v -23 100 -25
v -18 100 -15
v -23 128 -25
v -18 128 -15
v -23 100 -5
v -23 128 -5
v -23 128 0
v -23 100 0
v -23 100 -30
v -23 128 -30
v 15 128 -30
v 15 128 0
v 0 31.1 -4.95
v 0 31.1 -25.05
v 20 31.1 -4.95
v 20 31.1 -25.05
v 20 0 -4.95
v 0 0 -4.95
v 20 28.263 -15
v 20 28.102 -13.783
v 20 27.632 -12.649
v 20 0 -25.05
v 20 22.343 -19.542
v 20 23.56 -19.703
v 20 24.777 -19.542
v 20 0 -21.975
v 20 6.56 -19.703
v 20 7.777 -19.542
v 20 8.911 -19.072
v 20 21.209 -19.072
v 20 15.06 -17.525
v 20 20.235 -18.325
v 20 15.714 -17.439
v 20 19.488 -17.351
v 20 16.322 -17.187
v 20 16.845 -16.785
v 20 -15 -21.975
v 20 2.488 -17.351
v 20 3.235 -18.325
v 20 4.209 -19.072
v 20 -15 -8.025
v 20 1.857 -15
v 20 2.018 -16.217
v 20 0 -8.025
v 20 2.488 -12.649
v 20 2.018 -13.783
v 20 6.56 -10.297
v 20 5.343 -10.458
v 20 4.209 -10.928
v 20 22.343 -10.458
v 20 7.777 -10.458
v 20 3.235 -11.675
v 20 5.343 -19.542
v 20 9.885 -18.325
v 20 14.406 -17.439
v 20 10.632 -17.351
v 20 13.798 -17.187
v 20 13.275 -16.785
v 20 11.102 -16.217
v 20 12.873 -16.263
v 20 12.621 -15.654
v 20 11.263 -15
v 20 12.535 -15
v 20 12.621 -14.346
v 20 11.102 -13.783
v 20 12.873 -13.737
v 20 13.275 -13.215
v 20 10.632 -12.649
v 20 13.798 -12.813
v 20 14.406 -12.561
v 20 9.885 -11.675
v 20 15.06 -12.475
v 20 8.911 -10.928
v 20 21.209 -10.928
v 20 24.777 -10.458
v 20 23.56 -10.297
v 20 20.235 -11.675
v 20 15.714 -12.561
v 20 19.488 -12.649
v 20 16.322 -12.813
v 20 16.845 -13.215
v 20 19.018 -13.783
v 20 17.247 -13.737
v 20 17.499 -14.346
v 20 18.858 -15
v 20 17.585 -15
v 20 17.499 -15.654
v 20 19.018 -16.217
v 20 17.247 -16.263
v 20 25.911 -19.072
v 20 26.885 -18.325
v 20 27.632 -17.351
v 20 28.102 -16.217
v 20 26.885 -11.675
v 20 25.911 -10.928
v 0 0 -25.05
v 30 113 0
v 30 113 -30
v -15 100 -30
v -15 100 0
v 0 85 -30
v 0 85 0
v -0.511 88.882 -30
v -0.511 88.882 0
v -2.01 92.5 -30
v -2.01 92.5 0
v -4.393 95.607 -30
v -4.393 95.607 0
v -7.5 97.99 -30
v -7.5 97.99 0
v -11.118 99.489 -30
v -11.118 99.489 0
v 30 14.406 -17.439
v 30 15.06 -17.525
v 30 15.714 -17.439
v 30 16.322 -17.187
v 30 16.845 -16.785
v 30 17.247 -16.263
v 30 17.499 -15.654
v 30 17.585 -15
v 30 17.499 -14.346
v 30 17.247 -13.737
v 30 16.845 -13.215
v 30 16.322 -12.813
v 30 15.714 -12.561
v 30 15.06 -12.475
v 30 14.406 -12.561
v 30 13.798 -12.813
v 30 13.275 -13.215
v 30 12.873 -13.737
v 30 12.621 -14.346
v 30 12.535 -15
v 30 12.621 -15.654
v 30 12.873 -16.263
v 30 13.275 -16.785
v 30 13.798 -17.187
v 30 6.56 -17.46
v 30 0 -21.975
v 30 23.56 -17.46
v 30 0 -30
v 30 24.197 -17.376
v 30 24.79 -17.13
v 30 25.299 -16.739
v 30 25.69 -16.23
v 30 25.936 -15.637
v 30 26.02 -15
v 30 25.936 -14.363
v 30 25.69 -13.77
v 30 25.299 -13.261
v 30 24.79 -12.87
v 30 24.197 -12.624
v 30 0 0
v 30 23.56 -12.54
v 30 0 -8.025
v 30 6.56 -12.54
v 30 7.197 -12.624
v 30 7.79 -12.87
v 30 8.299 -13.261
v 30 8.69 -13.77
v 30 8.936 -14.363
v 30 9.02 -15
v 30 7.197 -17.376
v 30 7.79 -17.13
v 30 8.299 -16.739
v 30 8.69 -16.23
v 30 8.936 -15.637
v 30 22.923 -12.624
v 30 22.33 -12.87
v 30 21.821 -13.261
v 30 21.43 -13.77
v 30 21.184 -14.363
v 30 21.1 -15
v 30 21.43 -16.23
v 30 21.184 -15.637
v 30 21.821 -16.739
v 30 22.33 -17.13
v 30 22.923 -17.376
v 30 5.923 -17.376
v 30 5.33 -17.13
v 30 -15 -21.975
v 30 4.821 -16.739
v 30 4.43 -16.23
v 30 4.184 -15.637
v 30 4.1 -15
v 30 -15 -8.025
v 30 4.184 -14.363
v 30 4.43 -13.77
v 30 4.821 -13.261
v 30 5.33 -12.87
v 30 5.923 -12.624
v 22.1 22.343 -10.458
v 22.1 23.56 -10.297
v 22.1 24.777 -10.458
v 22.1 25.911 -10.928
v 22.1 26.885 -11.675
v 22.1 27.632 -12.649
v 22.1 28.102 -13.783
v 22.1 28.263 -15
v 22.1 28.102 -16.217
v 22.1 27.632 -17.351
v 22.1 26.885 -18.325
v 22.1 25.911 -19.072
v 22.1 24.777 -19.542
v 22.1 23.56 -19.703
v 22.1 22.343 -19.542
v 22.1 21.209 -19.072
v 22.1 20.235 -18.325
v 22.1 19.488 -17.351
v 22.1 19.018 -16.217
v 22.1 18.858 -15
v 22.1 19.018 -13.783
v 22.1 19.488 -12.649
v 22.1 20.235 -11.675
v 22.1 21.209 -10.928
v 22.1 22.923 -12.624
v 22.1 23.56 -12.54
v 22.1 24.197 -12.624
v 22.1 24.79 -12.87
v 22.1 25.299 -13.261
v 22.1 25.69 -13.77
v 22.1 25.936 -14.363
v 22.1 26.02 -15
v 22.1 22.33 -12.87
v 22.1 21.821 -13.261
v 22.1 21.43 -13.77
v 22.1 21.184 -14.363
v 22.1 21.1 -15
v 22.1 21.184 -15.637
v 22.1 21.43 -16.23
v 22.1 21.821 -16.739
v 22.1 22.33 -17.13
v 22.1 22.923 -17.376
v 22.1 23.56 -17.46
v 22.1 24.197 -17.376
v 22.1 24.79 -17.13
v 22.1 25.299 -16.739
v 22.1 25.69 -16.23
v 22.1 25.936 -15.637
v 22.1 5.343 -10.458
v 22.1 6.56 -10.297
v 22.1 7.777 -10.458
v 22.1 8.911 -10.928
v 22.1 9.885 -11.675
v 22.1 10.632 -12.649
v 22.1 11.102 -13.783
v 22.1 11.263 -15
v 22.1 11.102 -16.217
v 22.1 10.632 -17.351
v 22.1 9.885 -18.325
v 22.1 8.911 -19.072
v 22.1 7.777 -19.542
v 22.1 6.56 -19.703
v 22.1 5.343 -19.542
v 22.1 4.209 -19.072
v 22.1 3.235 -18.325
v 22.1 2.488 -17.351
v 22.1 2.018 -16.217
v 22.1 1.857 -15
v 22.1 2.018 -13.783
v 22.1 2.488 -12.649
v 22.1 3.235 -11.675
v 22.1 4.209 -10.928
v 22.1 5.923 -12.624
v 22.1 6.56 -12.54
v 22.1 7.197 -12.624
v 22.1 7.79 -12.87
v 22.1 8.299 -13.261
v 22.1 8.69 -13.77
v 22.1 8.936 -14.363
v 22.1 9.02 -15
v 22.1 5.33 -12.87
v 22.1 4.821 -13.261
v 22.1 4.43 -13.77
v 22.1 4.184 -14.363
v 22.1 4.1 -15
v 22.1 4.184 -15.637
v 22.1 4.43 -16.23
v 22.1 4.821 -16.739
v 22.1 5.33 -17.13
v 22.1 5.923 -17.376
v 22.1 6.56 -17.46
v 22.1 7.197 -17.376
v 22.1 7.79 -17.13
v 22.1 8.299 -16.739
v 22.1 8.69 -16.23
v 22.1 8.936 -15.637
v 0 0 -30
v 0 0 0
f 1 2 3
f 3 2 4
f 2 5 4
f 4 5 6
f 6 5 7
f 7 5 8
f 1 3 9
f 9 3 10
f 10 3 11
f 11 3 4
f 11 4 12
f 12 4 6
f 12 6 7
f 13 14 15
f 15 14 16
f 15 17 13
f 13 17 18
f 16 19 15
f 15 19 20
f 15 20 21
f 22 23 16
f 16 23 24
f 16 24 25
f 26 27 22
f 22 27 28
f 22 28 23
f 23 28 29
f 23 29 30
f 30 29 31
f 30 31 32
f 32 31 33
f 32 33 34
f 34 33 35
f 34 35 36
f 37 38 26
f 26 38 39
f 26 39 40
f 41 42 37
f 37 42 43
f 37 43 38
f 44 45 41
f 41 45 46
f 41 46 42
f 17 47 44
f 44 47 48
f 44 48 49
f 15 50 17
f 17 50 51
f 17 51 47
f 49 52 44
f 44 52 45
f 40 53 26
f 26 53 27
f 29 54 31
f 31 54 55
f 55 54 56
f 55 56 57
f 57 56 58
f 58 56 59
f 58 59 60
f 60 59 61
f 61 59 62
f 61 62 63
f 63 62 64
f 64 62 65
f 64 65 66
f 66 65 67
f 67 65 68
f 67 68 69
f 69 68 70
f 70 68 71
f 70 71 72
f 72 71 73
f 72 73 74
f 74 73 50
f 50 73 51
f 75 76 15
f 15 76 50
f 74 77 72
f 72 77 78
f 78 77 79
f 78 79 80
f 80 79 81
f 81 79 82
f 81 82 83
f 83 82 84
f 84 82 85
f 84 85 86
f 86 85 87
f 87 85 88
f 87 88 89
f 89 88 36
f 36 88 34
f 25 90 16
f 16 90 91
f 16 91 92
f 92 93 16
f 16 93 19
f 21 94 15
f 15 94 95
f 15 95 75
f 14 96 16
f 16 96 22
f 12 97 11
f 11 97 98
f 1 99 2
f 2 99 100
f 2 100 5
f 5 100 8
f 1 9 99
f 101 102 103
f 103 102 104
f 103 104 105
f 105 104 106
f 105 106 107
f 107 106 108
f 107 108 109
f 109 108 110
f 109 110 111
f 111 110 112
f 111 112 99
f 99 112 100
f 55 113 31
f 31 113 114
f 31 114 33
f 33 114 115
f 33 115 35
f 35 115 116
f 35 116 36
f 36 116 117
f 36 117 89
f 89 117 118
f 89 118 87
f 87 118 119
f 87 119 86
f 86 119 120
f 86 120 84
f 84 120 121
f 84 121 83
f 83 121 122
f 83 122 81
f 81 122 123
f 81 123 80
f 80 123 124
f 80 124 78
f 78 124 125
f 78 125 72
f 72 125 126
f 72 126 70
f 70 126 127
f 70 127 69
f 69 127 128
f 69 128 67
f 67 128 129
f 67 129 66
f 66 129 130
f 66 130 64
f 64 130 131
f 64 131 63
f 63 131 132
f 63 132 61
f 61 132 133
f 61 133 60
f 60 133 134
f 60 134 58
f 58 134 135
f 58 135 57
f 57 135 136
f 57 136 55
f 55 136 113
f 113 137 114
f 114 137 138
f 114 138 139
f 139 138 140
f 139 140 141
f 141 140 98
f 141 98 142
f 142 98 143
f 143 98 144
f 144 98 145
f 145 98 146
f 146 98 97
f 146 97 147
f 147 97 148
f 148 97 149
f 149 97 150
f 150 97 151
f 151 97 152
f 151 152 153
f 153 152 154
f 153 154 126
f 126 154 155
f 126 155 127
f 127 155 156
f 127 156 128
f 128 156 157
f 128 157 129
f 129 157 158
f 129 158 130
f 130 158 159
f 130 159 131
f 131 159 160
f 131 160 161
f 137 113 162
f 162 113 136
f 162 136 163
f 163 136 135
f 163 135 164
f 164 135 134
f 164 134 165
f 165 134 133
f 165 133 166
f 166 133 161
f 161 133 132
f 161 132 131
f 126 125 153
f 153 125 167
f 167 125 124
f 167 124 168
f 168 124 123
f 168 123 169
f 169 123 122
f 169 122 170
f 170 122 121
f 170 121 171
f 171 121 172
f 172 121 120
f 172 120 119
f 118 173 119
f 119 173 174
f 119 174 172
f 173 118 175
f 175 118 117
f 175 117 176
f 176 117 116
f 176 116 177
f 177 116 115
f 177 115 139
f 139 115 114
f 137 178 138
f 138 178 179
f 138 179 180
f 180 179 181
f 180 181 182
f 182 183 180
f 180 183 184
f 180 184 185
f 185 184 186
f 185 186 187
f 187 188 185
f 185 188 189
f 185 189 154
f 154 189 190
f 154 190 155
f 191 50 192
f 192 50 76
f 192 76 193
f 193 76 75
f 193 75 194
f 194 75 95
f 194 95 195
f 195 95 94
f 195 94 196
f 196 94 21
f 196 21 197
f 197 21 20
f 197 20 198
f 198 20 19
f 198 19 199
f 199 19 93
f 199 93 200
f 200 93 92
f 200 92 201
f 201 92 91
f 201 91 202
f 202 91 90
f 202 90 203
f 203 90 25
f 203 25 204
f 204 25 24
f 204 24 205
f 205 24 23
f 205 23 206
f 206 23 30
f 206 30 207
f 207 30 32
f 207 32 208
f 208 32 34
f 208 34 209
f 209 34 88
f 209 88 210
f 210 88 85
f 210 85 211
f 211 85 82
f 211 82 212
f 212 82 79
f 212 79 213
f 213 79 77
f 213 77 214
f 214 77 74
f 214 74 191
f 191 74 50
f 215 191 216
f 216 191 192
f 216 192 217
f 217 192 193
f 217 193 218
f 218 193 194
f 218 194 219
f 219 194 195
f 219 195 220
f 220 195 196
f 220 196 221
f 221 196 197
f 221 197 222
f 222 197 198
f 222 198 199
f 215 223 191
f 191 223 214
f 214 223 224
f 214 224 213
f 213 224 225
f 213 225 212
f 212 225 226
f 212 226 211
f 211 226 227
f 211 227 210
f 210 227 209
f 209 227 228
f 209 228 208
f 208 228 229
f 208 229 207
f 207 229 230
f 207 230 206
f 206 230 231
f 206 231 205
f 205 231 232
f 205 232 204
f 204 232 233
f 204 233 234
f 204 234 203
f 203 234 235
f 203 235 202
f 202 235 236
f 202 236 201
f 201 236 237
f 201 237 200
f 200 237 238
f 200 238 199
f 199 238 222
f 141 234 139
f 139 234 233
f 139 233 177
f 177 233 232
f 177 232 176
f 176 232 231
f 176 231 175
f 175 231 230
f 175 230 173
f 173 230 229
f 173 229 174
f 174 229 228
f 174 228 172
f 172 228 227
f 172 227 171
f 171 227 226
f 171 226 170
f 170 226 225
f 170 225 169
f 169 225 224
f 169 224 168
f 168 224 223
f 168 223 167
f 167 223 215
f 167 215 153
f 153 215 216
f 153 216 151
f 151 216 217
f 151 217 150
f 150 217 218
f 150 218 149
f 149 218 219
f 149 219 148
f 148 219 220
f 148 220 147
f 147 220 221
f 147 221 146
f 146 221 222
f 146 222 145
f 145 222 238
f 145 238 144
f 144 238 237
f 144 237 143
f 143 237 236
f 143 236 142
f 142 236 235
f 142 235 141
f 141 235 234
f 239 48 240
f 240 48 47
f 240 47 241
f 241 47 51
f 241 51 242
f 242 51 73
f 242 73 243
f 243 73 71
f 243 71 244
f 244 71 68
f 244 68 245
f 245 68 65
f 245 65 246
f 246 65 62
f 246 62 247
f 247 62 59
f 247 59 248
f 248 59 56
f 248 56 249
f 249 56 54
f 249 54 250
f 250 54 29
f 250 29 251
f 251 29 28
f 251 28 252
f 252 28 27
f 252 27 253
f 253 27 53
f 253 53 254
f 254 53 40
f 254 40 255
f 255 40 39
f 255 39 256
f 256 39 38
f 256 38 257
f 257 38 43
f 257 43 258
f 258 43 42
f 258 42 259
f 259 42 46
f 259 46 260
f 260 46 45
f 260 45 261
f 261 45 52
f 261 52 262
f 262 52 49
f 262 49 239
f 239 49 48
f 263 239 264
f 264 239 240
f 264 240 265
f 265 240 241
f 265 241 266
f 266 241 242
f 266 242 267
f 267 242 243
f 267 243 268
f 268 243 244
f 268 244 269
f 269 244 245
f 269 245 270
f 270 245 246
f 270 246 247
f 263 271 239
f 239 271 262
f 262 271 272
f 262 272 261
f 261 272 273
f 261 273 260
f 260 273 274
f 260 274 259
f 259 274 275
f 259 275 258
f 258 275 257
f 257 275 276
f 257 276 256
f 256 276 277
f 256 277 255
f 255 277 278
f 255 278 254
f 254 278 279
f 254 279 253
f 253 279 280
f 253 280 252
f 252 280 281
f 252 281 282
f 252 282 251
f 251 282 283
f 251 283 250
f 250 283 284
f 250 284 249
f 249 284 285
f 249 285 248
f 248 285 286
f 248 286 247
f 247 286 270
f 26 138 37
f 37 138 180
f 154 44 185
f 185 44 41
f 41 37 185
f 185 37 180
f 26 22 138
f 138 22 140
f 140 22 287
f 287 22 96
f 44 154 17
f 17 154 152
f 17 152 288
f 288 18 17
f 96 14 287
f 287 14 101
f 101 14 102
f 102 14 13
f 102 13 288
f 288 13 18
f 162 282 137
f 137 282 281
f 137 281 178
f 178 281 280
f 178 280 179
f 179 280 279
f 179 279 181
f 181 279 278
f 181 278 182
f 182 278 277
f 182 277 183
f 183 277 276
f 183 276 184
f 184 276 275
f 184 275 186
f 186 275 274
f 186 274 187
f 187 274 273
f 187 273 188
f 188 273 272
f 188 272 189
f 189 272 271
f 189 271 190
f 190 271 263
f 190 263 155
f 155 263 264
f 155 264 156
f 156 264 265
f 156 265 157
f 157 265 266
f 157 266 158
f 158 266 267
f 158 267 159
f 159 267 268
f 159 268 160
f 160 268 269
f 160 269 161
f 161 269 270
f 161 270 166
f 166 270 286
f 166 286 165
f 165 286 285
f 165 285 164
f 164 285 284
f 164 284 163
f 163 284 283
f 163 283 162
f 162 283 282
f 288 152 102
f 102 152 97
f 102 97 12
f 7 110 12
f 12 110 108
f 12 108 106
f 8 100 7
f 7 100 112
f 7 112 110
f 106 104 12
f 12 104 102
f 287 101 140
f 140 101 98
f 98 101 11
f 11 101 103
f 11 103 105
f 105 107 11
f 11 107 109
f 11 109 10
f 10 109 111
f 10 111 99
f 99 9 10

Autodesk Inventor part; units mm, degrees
ref_plane "YZ Plane" through (0, 0, 0) normal (1, 0, 0) x (0, 1, 0)
ref_plane "XZ Plane" through (0, 0, 0) normal (0, 1, 0) x (-1, 0, 0)
ref_plane "XY Plane" through (0, 0, 0) normal (0, 0, 1) x (1, 0, 0)
sketch "Sketch1" plane through (0, 0, 0) normal (0, 0, 1) x (1, 0, 0)
  line L0 (0, 0) -> (25, 0)
  line L1 (25, 0) -> (25, 40)
  line L2 (25, 40) -> (0, 40)
  line L3 (0, 40) -> (0, 0)
  dimension "d1" = 25
  dimension "d2" = 40
  dimension "d3" = 25
extrude "Extrusion1" add sketch "Sketch1" against normal blind 30
sketch "Sketch2" plane through (25, 0, 0) normal (1, 0, 0) x (0, 0, -1)
  line L0 (0, 0) -> (30, 0) projected
  circle A0 centre (15, 6.56) radius 2.46
extrude "Extrusion2" cut sketch "Sketch2" against normal blind 30
sketch "Sketch3" plane through (0, 0, 0) normal (-1, 0, 0) x (0, 0, 1)
  line L0 (0, 0) -> (-30, 0) projected
  line L1 (-25.05, 0) -> (-4.95, 0)
  line L2 (-4.95, 0) -> (-4.95, 33.12)
  line L3 (-4.95, 33.12) -> (-25.05, 33.12)
  line L4 (-25.05, 33.12) -> (-25.05, 0)
  dimension "d11" = 20.1
extrude "Extrusion3" cut sketch "Sketch3" against normal blind 20
sketch "Sketch4" plane through (0, 0, 0) normal (0, -1, 0) x (1, 0, 0)
  line L0 (20, -4.95) -> (20, -25.05) projected
  line L1 (20, -15) -> (25, -15)
  line L2 (25, 0) -> (25, -30) projected
  line L3 (20, -8.025) -> (25, -8.025)
  line L4 (25, -8.025) -> (25, -21.975)
  line L5 (25, -21.975) -> (20, -21.975)
  line L6 (20, -21.975) -> (20, -8.025)
  line L7 (20, -8.025) -> (25, -21.975) construction
  line L8 (25, -8.025) -> (20, -21.975) construction
  line L9 (25, -12.54) -> (25, -17.46) projected
  point P0 (0, 0)
  point P1 (22.5, -15)
  dimension "d14" = 13.95
extrude "Extrusion4" add sketch "Sketch4" along normal blind 15
sketch "Sketch5" plane through (20, 0, 0) normal (-1, 0, 0) x (0, 0, 1)
  circle A0 centre (-15, 6.56) radius 2.46 projected
  circle A1 centre (-15, 6.56) radius 4.7025
  circle A2 centre (-15, 6.56) radius 2.46 projected
  circle A3 centre (-15, 6.56) radius 2.46
  point P0 (0, 0)
  dimension "d17" = 9.405
extrude "Extrusion5" cut sketch "Sketch5" against normal blind 2.1
sketch "Sketch6" plane through (25, 0, 0) normal (1, 0, 0) x (0, 0, -1)
  circle A0 centre (15, 6.56) radius 4.7025 projected
  line L0 (15, 6.56) -> (15, 23.56)
  circle A1 centre (15, 23.56) radius 2.46
  point P0 (0, 0)
  dimension "d20" = 17
  dimension "d21" = 4.92
extrude "Extrusion6" cut sketch "Sketch6" against normal blind 10 contours A1
sketch "Sketch7" plane through (20, 0, 0) normal (-1, 0, 0) x (0, 0, 1)
  circle A0 centre (-15, 23.56) radius 2.46 projected
  circle A1 centre (-15, 23.56) radius 4.7025
  point P0 (0, 0)
  dimension "d24" = 9.405
extrude "Extrusion7" cut sketch "Sketch7" against normal blind 2.1
sketch "Sketch9" plane through (25, 0, 0) normal (1, 0, 0) x (0, 0, -1)
  circle A0 centre (15, 6.56) radius 2.46 projected
  circle A1 centre (15, 6.56) radius 2.46
  circle A2 centre (15, 23.56) radius 2.46 projected
  circle A3 centre (15, 23.56) radius 2.46
  line L0 (30, 40) -> (30, 0) projected
  line L1 (30, 0) -> (30, 40)
  line L2 (30, 40) -> (0, 40)
  line L3 (0, 40) -> (0, 0)
  line L4 (0, 0) -> (8.025, 0) projected
  line L5 (21.975, 0) -> (21.975, -15)
  line L6 (21.975, -15) -> (8.025, -15)
  line L7 (8.025, -15) -> (8.025, 0)
  line L8 (0, 0) -> (8.025, 0)
  line L9 (21.975, 0) -> (30, 0)
extrude "Extrusion8" add sketch "Sketch9" along normal blind 5
sketch "Sketch10" plane through (0, 40, 0) normal (0, 1, 0) x (1, 0, 0)
  line L0 (0, 30) -> (30, 30) projected
  line L1 (30, 0) -> (0, 0) projected
  line L2 (0, 30) -> (30, 30)
  line L3 (30, 30) -> (30, 0)
  line L4 (30, 0) -> (0, 0)
  line L5 (0, 0) -> (0, 30)
extrude "Extrusion9" add sketch "Sketch10" along normal blind 30
sketch "Sketch12" plane through (30, 0, 0) normal (1, 0, 0) x (0, 0, -1)
  circle A0 centre (15, 6.56) radius 2.46 projected
  line L0 (15, 6.56) -> (15, 15.06)
  circle A1 centre (15, 15.06) radius 2.525
  point P0 (0, 0)
  dimension "d31" = 8.5
  dimension "d33" = 5.05
extrude "Extrusion10" cut sketch "Sketch12" against normal blind 30 contours A1
sketch "Sketch14" plane through (0, 0, 0) normal (0, 0, 1) x (1, 0, 0)
  line L0 (30, 70) -> (0, 70) projected
  line L1 (0, 70) -> (0, 85)
  line L2 (-15, 100) -> (-23, 100)
  line L3 (30, 0) -> (30, 70) projected
  line L4 (30, 113) -> (30, 70)
  arc A0 (0, 85) -> (-15, 100) centre (-15, 85) ccw
  line L5 (30, 105) -> (30, 100)
  line L6 (-23, 128) -> (15, 128)
  line L7 (30, 113) -> (15, 128)
  line L8 (-23, 128) -> (-23, 100)
  point P0 (0, 0)
  point P1 (0, 100)
  dimension "d47" = 30
  dimension "d54" = 15
  dimension "d69" = 28
extrude "Extrusion12" add sketch "Sketch14" against normal blind 30
sketch "Sketch15" plane through (0, 0, -25.05) normal (-1, 0, 0) x (0, 0, 1)
  line L0 (0, 33.12) -> (20.1, 33.12) projected
  line L1 (20.1, 33.12) -> (20.1, 0) projected
  line L2 (0, 33.12) -> (20.1, 33.12)
  line L3 (20.1, 33.12) -> (20.1, 31.1)
  line L4 (20.1, 31.1) -> (0, 31.1)
  line L5 (0, 31.1) -> (0, 33.12)
  point P0 (25.05, 0)
  dimension "d57" = 2.02
extrude "Extrusion13" add sketch "Sketch15" against normal blind 20
sketch "Sketch21" plane through (-23, 128, 0) normal (0, 1, 0) x (1, 0, 0)
  line L0 (0, 0) -> (0, 30) projected
  line L1 (0, 15) -> (0, 5)
  line L2 (0, 25) -> (0, 15)
  line L3 (0, 25) -> (5, 15)
  line L4 (5, 15) -> (0, 5)
  point P0 (23, 0)
  dimension "d82" = 10
extrude "Extrusion15" cut sketch "Sketch21" against normal through all
properties part number "orien_b_15mm"
